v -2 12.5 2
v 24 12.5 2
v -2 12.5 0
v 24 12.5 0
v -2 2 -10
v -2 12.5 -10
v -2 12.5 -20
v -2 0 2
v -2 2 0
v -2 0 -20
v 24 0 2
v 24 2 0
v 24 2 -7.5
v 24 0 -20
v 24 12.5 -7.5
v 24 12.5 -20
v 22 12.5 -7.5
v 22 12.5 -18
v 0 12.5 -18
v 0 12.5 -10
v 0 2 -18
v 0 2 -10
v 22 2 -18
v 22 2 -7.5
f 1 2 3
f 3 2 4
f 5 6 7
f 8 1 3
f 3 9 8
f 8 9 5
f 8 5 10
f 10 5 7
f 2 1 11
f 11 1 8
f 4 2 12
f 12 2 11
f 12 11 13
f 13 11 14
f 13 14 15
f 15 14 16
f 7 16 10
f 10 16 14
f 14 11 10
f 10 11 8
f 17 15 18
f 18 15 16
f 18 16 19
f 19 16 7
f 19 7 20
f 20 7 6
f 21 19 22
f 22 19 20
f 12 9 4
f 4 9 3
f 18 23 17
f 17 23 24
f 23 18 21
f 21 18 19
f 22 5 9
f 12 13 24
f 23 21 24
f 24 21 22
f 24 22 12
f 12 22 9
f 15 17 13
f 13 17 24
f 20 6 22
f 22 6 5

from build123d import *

# Parameters (mm, degrees)
SKETCH1_W           = 26
SKETCH1_H           = 22
SKETCH1_W_2         = 22
SKETCH1_H_2         = 18
BOSS_EXTRUDE1_DEPTH = 2
SKETCH1_3_W         = 26
SKETCH1_3_H         = 22
SKETCH1_3_W_2       = 22
SKETCH1_3_H_2       = 18
BOSS_EXTRUDE2_DEPTH = 12.5
SKETCH2_W           = 2
SKETCH2_H           = 10
SKETCH2_H_2         = 7.5
CUT_EXTRUDE1_DEPTH  = 10.5


with BuildPart() as part:
    # Sketch1 → Boss-Extrude1 (new body)
    # profile 1 of 2: a face of its own
    with BuildSketch(Plane(origin=(0, 0, 0), x_dir=(1, 0, 0), z_dir=(0, 1, 0))):
        with Locations((11, 9)):
            Rectangle(SKETCH1_W, SKETCH1_H)
        with Locations((11, 9)):
            Rectangle(SKETCH1_W_2, SKETCH1_H_2, mode=Mode.SUBTRACT)
    # profile 2 of 2: a face of its own
    with BuildSketch(Plane(origin=(0, 0, 0), x_dir=(1, 0, 0), z_dir=(0, 1, 0))):
        with Locations((11, 9)):
            Rectangle(SKETCH1_W_2, SKETCH1_H_2)
    extrude(amount=BOSS_EXTRUDE1_DEPTH)

    # Sketch1<3> → Boss-Extrude2 (add)
    with BuildSketch(Plane(origin=(0, 0, 0), x_dir=(1, 0, 0), z_dir=(0, 1, 0))):
        with Locations((11, 9)):
            Rectangle(SKETCH1_3_W, SKETCH1_3_H)
        with Locations((11, 9)):
            Rectangle(SKETCH1_3_W_2, SKETCH1_3_H_2, mode=Mode.SUBTRACT)
    extrude(amount=BOSS_EXTRUDE2_DEPTH)

    # Sketch2 → Cut-Extrude1 (cut)
    with BuildSketch(Plane(origin=(0, 12.5, 0), x_dir=(1, 0, 0), z_dir=(0, 1, 0))):
        with Locations((-1, 5)):
            Rectangle(SKETCH2_W, SKETCH2_H)
        with Locations((23, 3.75)):
            Rectangle(SKETCH2_W, SKETCH2_H_2)
    extrude(amount=-CUT_EXTRUDE1_DEPTH, mode=Mode.SUBTRACT)


solid = part.part
